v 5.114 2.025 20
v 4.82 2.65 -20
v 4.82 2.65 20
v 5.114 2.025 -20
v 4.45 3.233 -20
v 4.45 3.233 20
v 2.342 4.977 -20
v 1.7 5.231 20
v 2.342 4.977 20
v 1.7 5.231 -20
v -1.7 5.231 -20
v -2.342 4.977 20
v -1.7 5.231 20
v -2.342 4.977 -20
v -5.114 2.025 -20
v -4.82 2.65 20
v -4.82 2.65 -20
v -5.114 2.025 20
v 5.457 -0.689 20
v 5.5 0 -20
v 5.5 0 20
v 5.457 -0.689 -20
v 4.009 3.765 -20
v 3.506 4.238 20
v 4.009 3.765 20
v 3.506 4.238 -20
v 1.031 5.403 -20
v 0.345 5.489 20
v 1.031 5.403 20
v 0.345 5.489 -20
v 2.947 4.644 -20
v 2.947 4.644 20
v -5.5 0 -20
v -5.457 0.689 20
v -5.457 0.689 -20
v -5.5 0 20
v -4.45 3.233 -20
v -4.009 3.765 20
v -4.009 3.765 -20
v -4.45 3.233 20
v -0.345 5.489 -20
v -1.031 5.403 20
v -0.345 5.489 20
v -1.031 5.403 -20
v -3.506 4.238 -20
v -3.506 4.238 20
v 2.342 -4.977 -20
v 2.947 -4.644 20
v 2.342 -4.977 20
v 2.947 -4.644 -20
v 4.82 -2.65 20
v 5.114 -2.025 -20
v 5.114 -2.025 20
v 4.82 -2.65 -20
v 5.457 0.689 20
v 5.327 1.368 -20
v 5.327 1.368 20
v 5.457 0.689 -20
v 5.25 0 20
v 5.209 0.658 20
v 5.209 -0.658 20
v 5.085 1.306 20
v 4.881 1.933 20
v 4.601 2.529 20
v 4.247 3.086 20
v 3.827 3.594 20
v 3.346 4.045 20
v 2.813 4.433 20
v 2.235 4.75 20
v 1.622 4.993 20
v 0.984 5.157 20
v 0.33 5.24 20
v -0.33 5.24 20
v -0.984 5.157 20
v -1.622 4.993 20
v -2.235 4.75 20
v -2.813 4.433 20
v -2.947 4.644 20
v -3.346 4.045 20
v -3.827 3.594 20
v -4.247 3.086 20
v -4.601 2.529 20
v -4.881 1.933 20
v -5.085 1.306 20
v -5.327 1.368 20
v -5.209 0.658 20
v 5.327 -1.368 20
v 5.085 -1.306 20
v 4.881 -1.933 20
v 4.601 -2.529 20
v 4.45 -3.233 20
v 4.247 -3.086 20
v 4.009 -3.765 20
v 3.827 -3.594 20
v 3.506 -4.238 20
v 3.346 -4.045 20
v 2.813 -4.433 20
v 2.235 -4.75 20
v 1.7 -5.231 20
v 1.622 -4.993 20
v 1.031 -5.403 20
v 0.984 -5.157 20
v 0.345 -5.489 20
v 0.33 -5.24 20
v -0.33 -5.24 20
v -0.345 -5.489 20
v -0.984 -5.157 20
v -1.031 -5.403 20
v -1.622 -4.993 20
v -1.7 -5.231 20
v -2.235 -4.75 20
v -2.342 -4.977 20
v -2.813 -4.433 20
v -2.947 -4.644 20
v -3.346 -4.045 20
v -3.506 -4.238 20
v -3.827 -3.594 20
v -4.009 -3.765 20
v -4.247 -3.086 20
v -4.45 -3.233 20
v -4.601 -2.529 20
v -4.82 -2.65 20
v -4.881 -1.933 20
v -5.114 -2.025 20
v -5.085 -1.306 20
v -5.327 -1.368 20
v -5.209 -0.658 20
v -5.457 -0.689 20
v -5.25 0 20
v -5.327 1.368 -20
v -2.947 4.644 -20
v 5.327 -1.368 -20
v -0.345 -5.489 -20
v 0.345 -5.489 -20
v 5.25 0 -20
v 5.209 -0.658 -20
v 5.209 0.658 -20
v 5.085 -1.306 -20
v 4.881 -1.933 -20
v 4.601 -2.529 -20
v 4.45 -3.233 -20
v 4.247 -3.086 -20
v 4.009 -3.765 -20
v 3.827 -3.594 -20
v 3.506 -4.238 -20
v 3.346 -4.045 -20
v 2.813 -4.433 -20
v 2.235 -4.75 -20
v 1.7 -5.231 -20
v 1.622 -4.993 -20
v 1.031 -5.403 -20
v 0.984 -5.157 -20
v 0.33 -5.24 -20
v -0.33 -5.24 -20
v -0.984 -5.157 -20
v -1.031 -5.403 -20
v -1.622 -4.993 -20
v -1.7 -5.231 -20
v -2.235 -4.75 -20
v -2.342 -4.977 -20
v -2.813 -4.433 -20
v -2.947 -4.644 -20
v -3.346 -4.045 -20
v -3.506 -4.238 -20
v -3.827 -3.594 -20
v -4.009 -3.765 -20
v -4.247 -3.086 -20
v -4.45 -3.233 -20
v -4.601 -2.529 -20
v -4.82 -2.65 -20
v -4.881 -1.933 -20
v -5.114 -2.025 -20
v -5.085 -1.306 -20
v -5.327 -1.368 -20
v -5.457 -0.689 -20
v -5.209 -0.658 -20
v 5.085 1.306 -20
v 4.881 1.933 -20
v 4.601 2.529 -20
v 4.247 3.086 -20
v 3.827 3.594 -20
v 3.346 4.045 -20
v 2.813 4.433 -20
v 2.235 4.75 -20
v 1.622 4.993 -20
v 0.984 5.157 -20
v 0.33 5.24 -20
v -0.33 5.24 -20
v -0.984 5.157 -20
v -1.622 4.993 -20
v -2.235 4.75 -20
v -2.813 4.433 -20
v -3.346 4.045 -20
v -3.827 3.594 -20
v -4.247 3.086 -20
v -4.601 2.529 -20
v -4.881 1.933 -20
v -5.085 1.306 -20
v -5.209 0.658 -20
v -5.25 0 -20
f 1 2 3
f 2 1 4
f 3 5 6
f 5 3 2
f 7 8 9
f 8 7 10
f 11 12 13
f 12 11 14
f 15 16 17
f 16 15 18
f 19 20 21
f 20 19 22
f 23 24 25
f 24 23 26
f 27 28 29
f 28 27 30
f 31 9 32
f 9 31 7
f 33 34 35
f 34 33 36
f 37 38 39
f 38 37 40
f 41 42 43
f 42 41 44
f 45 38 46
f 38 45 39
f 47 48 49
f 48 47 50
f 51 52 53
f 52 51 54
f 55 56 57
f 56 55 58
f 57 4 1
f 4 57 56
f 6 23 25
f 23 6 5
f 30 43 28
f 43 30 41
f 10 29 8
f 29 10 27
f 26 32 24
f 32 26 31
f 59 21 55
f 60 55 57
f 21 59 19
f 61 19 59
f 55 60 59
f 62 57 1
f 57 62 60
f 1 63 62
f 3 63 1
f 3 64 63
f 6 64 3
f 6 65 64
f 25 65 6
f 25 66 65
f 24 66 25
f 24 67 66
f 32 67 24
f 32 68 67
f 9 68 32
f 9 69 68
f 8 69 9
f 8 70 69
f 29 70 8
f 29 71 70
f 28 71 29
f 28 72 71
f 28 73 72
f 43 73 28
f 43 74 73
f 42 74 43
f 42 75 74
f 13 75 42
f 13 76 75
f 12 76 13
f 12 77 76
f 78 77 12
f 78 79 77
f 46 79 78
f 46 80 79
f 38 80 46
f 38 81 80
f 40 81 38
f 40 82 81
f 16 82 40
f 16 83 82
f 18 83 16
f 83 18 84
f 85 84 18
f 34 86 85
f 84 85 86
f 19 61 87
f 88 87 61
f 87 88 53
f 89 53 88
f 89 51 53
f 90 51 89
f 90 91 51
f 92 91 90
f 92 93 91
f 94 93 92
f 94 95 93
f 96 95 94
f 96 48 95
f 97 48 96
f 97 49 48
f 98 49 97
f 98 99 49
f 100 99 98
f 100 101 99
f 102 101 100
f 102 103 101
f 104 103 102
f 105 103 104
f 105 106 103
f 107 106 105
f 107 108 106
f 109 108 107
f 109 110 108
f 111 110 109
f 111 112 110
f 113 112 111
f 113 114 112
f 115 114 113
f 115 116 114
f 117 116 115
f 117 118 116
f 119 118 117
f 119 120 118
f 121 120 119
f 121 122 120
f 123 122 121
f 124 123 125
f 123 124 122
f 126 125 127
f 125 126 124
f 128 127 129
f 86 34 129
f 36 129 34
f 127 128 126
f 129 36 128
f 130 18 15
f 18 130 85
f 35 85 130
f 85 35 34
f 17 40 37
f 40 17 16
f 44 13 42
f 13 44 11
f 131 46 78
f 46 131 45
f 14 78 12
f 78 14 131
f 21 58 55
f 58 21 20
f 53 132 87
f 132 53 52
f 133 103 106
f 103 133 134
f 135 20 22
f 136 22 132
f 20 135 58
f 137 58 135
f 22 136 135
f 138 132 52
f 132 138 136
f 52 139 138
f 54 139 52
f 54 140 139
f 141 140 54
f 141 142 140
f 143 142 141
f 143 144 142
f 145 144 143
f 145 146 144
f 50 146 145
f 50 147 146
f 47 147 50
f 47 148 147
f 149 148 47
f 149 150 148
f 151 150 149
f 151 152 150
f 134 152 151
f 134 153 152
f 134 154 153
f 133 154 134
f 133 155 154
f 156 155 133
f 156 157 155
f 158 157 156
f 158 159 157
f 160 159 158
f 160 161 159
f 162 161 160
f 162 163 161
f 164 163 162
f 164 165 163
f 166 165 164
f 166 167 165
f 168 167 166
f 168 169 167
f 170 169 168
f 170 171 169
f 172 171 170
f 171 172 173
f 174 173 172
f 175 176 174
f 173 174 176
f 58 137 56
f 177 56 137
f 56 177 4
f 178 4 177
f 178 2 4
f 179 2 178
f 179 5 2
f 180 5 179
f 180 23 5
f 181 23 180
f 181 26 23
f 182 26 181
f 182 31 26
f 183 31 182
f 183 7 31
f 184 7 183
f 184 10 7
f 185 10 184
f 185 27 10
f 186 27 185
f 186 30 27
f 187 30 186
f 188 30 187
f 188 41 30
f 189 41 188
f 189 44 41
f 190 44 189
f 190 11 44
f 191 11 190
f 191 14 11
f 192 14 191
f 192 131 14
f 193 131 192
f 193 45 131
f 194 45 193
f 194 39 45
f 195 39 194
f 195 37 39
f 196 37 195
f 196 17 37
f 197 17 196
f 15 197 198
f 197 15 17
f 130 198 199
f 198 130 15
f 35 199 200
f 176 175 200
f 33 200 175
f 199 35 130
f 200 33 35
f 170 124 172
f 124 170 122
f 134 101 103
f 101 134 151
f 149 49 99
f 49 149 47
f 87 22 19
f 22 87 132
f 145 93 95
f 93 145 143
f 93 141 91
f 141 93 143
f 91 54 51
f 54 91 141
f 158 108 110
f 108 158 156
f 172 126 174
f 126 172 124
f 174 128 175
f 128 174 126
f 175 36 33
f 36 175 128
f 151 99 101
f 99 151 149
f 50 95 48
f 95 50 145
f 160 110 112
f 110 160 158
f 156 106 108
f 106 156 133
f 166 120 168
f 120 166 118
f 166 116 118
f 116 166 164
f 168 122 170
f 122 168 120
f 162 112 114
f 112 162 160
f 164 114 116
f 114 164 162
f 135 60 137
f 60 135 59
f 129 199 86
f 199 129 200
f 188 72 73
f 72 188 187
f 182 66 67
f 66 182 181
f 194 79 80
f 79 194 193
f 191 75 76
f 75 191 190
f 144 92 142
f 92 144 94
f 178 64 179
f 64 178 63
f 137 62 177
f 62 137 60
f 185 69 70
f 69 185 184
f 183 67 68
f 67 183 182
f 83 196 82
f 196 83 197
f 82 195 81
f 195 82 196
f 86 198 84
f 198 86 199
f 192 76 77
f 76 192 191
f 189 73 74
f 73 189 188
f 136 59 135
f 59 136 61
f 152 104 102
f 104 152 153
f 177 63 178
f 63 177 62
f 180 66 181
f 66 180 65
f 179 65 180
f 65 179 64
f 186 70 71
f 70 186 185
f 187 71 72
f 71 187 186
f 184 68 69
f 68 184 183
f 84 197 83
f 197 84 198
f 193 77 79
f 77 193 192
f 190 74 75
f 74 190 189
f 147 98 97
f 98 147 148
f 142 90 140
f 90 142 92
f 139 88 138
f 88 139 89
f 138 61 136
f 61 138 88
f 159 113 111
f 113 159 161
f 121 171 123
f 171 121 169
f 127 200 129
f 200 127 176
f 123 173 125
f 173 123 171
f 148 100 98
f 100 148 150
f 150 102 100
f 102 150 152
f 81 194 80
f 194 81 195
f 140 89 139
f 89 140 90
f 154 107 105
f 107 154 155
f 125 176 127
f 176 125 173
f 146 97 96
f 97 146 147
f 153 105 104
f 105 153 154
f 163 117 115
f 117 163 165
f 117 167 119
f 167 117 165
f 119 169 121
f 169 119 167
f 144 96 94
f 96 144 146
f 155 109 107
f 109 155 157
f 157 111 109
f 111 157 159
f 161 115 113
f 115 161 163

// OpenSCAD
$fn = 50;


difference() {
	union() {
		translate(v = [0, 0, -20.0000000000]) {
			cylinder(h = 40, r = 5.5000000000);
		}
	}
	union() {
		translate(v = [0, 0, -100.0000000000]) {
			cylinder(h = 200, r = 5.2500000000);
		}
	}
}
